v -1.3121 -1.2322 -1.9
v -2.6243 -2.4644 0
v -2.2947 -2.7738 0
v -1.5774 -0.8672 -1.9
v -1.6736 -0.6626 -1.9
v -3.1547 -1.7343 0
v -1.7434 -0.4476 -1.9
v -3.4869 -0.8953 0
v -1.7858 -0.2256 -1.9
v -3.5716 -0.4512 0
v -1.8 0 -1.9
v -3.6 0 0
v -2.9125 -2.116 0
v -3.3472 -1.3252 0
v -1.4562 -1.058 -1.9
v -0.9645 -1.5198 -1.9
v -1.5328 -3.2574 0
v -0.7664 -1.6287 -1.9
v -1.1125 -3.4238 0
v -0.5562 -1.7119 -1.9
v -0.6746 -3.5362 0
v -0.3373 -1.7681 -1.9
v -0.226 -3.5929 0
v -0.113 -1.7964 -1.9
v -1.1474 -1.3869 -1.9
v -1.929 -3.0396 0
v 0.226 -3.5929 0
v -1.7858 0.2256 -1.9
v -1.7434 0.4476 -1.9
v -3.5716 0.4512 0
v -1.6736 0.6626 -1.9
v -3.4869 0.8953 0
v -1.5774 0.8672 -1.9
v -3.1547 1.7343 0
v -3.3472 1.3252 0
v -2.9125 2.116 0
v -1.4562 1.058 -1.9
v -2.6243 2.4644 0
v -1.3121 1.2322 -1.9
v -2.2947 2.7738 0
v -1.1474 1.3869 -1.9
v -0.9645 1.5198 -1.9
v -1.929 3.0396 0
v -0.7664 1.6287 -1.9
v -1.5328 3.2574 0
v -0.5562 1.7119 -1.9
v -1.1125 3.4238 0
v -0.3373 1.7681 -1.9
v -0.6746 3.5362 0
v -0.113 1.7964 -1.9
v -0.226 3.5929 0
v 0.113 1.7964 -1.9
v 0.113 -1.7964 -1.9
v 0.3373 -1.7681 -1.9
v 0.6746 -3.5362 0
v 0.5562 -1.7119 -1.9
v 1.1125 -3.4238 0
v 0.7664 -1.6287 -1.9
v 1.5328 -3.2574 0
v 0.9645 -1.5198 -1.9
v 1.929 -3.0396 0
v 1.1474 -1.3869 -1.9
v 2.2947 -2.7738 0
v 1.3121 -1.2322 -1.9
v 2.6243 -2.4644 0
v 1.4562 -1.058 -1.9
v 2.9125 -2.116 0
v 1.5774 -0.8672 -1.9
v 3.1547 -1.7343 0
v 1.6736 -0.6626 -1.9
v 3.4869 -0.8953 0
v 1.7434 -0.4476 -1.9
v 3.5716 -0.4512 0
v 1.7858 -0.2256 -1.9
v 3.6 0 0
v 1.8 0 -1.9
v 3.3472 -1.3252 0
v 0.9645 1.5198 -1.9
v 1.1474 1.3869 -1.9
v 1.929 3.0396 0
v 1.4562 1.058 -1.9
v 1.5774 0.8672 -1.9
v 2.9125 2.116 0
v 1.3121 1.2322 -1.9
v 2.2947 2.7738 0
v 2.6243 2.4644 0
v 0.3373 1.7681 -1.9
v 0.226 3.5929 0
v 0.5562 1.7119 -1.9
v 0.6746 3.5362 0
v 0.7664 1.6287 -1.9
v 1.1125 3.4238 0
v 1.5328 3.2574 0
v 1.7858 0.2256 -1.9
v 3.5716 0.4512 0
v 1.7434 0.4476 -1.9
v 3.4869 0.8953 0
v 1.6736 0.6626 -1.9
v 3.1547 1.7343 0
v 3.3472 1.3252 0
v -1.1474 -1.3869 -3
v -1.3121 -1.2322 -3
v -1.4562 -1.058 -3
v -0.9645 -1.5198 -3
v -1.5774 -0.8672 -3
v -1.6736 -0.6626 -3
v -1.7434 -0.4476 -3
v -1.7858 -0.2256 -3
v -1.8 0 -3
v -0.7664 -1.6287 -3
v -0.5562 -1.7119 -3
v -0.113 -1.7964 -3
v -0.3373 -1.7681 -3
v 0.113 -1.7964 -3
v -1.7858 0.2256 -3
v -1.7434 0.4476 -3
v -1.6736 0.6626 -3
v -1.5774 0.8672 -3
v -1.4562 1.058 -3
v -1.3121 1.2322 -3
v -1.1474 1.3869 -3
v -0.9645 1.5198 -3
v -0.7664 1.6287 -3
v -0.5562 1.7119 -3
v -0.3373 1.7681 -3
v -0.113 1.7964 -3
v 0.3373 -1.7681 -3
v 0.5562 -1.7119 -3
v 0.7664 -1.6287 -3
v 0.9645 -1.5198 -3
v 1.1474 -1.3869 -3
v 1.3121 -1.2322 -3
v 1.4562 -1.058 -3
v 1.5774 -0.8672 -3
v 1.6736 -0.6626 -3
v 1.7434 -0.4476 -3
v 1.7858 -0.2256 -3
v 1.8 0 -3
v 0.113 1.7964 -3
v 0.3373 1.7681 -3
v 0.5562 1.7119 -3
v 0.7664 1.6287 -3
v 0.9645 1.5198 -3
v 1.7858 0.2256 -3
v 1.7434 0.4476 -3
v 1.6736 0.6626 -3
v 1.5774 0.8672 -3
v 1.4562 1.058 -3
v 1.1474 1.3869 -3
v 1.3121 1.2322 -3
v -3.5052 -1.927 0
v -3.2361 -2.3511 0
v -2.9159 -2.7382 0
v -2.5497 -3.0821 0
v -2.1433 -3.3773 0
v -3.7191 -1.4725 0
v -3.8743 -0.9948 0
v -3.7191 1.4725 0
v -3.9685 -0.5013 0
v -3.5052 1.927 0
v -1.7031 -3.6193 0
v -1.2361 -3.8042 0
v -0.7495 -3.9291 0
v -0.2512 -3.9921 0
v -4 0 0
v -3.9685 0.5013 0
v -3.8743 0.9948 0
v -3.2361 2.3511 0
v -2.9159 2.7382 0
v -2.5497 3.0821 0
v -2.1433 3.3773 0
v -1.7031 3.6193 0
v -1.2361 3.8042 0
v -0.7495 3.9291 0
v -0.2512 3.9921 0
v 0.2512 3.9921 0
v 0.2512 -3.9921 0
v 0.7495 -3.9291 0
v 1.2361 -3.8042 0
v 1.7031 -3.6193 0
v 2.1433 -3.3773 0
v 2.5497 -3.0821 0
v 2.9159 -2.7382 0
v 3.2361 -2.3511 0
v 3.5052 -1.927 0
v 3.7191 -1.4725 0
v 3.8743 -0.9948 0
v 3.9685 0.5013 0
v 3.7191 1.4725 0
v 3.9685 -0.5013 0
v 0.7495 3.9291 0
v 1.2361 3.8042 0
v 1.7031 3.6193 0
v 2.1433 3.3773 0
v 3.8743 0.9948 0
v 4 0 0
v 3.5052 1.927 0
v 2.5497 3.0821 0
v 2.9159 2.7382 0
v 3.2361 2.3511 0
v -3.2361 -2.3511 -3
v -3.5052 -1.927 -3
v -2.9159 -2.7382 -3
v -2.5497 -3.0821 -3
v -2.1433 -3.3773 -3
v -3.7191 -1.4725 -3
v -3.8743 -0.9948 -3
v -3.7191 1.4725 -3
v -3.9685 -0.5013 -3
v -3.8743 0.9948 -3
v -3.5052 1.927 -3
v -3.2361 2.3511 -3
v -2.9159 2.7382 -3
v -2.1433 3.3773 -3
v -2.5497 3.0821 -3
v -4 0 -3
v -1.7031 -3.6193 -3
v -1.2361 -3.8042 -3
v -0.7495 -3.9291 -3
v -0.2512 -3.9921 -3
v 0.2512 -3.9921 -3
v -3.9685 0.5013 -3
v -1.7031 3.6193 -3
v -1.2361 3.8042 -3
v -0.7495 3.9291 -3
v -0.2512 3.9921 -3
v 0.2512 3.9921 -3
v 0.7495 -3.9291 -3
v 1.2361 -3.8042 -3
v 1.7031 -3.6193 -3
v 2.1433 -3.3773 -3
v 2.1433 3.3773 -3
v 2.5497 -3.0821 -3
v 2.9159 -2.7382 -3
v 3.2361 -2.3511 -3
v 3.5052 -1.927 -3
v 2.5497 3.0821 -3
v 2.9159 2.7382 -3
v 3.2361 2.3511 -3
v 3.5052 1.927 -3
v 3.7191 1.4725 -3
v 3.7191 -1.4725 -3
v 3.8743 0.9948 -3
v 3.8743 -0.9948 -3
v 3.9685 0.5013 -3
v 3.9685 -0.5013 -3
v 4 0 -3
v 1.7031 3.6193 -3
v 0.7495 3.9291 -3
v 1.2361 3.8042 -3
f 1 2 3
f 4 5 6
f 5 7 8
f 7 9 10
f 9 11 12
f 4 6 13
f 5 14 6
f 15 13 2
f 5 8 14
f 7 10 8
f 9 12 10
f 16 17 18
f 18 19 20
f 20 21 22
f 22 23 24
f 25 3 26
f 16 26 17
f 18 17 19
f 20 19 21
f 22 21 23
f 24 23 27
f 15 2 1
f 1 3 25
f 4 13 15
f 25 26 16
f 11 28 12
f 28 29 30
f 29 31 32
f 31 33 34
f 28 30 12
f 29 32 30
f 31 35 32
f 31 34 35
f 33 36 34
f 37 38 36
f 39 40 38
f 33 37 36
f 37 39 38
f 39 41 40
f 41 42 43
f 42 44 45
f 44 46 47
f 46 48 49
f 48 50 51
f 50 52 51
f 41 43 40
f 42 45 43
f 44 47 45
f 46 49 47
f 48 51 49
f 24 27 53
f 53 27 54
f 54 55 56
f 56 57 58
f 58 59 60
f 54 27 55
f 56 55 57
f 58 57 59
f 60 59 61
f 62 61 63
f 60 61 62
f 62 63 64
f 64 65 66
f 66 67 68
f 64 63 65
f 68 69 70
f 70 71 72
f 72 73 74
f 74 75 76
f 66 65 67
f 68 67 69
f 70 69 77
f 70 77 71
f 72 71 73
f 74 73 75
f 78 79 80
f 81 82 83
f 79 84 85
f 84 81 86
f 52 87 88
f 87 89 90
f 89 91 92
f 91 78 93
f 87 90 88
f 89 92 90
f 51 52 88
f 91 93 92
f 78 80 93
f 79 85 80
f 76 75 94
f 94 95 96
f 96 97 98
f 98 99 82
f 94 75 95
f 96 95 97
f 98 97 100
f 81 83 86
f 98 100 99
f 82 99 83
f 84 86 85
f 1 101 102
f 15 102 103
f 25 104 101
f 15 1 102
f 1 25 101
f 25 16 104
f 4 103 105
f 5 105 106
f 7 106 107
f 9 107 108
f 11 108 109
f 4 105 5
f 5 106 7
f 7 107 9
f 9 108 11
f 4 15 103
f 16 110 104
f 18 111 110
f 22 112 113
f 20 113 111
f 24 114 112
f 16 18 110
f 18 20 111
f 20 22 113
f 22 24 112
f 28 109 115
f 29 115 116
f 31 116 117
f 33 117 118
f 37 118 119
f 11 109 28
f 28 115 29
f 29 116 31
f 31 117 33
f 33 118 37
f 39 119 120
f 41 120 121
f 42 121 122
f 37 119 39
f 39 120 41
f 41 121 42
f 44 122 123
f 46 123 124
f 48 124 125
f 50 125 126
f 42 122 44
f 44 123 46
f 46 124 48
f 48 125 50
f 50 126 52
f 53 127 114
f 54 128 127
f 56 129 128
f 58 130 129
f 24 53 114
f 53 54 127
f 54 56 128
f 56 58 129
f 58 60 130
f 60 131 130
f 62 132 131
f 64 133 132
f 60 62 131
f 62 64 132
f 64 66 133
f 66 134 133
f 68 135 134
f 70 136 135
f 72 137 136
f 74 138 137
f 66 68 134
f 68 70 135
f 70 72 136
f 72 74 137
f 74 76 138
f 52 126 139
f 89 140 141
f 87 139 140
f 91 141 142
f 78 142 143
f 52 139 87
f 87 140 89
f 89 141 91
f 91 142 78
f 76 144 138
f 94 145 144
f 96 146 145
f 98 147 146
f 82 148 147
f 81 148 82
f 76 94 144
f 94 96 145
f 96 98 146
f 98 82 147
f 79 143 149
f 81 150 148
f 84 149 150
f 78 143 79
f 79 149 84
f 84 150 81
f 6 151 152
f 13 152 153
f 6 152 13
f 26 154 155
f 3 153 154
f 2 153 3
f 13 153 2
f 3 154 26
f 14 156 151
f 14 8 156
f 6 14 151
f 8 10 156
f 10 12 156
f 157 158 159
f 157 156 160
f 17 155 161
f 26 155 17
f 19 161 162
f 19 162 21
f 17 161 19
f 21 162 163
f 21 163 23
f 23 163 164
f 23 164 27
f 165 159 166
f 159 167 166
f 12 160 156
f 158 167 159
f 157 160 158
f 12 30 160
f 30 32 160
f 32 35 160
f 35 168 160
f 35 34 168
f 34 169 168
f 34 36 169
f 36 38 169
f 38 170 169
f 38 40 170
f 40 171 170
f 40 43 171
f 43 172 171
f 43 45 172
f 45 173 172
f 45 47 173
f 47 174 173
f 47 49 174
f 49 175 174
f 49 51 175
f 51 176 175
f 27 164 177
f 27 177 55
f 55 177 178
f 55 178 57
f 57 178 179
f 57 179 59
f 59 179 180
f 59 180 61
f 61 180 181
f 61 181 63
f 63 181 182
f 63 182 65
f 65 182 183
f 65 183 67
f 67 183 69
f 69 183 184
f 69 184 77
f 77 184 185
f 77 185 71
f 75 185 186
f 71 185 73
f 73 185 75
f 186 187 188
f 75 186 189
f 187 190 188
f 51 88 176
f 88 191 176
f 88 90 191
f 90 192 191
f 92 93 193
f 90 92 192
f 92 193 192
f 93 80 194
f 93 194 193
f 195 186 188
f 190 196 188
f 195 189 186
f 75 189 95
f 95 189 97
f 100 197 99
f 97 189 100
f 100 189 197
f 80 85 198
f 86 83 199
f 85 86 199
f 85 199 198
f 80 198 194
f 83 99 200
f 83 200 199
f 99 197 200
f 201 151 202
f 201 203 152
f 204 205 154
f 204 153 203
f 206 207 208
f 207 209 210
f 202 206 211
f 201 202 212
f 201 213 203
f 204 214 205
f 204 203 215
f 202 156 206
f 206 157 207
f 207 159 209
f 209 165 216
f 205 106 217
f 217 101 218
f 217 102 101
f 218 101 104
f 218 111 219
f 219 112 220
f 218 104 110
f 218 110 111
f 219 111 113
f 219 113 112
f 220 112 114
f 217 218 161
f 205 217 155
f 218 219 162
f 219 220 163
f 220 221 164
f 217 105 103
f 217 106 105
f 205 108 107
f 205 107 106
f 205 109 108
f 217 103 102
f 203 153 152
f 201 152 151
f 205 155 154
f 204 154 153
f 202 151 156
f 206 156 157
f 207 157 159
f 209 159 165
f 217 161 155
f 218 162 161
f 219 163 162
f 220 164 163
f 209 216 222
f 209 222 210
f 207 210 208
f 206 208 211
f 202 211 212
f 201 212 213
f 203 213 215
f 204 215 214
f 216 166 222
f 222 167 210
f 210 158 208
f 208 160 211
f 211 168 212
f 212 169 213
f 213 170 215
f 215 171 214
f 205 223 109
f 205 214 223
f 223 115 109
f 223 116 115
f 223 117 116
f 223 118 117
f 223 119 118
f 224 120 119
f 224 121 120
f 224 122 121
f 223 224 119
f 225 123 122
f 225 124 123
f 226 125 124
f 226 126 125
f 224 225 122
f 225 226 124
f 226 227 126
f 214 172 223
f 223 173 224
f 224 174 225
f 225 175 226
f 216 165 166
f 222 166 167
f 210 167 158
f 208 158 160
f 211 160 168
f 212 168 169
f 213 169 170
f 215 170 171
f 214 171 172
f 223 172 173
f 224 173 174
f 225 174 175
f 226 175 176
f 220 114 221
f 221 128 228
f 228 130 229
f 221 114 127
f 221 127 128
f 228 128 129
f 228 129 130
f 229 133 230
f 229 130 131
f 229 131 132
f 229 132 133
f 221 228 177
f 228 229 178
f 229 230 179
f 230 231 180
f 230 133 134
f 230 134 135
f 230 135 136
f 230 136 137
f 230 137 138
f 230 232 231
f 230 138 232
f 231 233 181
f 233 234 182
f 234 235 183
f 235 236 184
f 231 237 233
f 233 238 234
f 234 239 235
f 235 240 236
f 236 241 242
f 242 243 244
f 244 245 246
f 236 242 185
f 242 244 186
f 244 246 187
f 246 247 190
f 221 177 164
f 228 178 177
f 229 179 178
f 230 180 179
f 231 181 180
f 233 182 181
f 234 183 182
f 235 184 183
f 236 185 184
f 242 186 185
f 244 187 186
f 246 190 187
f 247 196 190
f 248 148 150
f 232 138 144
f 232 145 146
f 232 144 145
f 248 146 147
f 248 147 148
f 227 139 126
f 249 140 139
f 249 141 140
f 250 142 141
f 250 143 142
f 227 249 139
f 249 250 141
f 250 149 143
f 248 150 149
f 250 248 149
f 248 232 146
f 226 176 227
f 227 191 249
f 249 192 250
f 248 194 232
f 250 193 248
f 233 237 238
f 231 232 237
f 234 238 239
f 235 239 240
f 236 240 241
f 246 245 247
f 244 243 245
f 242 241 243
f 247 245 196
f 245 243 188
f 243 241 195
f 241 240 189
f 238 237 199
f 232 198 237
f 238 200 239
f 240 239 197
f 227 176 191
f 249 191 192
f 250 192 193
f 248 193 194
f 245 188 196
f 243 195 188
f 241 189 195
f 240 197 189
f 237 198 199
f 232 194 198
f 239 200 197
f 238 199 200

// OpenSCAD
$fn = 50;

difference() {
	union() {
		translate(v = [0, 0, -3.0]) {
			cylinder(h = 6, r = 4.0);
		}
	}
	union() {
		translate(v = [0, 0, 0]) {
			rotate(a = [0, 0, 0]) {
				difference() {
					union() {
						translate(v = [0, 0, -6.0]) {
							cylinder(h = 6, r = 1.5);
						}
						translate(v = [0, 0, -1.9]) {
							cylinder(h = 1.9, r1 = 1.8, r2 = 3.6);
						}
						translate(v = [0, 0, -6.0]) {
							cylinder(h = 6, r = 1.8);
						}
						translate(v = [0, 0, -6.0]) {
							cylinder(h = 6, r = 1.5);
						}
					}
					union();
				}
			}
		}
		#cylinder(h = 3, r = 5.0);
	}
}
